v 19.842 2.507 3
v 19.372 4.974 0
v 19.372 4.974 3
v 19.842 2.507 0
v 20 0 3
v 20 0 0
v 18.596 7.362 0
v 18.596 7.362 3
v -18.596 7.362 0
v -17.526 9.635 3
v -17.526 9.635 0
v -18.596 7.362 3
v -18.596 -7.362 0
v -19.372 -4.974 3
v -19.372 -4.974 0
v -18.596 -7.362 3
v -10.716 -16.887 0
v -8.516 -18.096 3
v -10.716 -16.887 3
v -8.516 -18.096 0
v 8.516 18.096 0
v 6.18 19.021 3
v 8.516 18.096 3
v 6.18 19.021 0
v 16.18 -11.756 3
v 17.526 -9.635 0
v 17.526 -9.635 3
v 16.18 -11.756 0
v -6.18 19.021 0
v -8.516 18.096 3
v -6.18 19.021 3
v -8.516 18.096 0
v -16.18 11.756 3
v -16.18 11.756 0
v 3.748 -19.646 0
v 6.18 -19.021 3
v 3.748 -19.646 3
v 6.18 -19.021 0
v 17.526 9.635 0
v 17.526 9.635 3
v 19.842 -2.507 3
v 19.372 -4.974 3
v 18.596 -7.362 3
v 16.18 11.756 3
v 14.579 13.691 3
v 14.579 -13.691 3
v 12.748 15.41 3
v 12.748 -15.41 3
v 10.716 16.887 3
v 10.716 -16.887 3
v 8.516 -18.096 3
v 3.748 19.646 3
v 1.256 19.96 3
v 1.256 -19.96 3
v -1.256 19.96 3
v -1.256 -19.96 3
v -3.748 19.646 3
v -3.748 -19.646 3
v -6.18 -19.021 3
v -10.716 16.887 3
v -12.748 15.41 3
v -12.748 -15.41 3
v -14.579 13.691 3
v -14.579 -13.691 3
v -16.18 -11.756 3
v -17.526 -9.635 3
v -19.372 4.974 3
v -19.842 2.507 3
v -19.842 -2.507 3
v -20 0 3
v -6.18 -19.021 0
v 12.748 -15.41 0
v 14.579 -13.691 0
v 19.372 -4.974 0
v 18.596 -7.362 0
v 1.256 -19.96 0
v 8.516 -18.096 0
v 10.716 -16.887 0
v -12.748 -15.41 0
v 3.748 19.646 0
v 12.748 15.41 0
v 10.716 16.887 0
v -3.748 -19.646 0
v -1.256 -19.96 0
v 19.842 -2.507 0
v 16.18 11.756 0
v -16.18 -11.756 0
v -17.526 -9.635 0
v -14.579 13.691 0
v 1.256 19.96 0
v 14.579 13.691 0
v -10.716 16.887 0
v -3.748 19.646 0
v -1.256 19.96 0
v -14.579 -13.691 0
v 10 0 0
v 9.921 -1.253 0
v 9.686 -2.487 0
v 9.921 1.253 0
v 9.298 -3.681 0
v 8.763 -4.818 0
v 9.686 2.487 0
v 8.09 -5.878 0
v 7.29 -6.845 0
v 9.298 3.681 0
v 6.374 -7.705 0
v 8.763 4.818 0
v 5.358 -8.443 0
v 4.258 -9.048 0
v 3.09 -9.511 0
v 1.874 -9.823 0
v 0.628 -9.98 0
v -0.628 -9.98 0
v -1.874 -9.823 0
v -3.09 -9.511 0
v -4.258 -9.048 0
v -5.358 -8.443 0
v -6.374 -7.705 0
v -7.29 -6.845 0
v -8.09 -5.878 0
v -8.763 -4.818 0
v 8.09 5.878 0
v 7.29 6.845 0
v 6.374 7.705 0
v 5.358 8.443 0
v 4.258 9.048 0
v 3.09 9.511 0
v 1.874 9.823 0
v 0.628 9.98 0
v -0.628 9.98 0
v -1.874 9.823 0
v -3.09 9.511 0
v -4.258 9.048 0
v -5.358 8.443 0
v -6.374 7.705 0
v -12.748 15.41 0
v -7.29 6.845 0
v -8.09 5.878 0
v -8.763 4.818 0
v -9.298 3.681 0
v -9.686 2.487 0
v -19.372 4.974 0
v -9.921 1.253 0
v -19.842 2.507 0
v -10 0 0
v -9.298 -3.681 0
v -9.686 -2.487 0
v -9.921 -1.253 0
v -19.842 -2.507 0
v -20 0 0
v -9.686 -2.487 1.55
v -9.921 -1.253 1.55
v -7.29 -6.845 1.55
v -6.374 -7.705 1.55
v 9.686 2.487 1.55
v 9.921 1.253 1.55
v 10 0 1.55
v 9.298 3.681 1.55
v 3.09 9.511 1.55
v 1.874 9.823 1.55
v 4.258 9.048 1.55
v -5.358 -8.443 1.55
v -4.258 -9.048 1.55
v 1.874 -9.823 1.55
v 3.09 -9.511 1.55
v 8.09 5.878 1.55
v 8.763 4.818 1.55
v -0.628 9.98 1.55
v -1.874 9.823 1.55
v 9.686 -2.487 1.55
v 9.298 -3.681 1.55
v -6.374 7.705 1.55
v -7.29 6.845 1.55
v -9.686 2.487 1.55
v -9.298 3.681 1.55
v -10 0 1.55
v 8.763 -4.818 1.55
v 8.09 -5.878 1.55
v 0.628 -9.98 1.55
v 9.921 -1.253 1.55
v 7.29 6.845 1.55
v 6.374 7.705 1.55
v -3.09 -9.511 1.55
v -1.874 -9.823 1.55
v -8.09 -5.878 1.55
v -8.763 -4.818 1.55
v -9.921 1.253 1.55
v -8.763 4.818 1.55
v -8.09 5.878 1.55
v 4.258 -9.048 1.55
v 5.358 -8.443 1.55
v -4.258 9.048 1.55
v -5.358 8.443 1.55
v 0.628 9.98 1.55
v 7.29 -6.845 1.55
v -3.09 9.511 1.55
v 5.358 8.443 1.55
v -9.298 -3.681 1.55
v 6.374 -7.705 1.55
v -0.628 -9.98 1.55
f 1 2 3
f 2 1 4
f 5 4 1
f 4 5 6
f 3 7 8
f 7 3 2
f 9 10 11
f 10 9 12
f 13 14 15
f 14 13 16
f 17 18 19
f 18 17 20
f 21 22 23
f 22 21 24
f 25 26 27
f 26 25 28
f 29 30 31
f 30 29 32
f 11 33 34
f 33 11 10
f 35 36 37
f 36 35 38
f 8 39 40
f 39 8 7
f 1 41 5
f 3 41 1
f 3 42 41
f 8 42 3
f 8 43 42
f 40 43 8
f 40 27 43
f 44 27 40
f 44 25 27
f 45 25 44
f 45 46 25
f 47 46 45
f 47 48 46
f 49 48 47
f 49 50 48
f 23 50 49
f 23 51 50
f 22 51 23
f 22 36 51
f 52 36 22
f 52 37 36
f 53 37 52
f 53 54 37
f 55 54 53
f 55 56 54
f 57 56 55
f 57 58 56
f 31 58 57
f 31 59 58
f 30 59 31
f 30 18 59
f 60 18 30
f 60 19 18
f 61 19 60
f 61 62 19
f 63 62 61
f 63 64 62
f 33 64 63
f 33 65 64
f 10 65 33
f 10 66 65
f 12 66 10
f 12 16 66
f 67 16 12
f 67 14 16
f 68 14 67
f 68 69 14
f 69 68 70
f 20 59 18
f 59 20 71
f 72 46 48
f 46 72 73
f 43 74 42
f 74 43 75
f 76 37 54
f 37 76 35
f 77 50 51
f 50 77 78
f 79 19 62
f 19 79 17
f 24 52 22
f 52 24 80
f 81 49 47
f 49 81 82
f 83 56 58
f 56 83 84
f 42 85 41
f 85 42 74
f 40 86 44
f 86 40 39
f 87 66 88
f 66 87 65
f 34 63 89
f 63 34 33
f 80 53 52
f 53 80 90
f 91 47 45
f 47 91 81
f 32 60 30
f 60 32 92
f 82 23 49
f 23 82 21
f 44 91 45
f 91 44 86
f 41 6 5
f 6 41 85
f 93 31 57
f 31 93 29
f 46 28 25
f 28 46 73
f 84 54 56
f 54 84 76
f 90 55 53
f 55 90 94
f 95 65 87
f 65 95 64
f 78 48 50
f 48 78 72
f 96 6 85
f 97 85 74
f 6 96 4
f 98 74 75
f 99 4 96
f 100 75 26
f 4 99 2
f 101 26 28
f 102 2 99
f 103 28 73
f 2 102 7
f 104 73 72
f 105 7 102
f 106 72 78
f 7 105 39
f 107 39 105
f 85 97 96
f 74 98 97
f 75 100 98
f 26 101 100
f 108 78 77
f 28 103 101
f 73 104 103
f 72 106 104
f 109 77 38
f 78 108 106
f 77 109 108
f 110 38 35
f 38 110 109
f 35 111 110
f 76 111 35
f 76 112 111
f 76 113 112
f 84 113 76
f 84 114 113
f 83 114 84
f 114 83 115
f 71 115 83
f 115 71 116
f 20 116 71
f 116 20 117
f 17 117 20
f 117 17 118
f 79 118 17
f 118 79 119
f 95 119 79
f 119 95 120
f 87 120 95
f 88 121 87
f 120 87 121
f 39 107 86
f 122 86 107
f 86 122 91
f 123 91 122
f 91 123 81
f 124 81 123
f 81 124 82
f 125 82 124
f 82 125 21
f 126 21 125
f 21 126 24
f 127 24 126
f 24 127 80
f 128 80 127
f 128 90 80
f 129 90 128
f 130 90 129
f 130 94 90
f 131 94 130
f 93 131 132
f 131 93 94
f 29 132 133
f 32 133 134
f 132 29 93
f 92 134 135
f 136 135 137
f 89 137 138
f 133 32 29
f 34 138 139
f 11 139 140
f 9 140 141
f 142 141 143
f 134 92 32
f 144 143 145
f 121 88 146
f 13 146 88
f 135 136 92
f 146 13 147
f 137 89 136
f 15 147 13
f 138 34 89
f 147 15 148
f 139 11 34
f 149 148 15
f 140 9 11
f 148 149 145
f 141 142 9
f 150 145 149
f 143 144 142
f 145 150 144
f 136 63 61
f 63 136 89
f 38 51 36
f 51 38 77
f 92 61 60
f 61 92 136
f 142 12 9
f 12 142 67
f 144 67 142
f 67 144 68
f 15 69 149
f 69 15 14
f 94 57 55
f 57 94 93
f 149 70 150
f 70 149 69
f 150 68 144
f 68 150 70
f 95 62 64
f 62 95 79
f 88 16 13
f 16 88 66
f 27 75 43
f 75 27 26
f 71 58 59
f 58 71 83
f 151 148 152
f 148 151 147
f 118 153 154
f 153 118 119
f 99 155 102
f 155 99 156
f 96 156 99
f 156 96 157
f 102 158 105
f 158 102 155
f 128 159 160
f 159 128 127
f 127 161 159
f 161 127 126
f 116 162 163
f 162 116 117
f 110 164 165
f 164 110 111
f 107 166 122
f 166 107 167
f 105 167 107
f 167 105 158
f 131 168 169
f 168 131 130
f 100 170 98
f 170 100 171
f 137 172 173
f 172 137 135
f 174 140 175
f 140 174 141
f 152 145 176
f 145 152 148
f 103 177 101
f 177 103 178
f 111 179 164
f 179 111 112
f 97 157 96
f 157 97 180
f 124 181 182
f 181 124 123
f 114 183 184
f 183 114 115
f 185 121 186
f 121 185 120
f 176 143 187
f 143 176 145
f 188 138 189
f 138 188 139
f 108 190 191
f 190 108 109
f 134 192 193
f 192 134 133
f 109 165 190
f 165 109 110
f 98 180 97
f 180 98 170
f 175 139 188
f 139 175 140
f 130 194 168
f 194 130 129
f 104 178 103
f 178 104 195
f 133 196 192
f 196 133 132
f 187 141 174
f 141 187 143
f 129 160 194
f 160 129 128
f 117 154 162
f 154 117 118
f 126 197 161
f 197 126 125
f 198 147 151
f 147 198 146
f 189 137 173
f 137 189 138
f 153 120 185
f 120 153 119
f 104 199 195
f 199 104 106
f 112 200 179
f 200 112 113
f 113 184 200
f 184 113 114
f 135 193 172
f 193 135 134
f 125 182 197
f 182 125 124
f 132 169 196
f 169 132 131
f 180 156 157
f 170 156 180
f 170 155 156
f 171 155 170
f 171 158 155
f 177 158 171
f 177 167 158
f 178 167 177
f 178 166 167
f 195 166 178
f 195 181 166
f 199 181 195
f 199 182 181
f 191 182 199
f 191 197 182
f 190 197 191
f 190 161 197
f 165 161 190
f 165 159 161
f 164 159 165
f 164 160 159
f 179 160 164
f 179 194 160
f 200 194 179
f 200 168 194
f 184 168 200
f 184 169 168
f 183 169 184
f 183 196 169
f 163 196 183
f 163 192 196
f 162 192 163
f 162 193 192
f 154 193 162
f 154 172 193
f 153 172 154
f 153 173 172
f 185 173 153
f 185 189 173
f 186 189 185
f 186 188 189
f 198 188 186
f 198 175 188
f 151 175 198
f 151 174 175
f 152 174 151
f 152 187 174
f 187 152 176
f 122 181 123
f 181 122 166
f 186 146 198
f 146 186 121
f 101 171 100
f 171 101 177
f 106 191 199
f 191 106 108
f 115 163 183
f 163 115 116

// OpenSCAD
$fn = 50;

radius = 20;
thickness = 3;
hole_radius = 10;

difference() {
  cylinder(r = radius, h = thickness, $fn = $fn);
  cylinder(r = hole_radius, h = thickness + 0.1, center = true);
}
